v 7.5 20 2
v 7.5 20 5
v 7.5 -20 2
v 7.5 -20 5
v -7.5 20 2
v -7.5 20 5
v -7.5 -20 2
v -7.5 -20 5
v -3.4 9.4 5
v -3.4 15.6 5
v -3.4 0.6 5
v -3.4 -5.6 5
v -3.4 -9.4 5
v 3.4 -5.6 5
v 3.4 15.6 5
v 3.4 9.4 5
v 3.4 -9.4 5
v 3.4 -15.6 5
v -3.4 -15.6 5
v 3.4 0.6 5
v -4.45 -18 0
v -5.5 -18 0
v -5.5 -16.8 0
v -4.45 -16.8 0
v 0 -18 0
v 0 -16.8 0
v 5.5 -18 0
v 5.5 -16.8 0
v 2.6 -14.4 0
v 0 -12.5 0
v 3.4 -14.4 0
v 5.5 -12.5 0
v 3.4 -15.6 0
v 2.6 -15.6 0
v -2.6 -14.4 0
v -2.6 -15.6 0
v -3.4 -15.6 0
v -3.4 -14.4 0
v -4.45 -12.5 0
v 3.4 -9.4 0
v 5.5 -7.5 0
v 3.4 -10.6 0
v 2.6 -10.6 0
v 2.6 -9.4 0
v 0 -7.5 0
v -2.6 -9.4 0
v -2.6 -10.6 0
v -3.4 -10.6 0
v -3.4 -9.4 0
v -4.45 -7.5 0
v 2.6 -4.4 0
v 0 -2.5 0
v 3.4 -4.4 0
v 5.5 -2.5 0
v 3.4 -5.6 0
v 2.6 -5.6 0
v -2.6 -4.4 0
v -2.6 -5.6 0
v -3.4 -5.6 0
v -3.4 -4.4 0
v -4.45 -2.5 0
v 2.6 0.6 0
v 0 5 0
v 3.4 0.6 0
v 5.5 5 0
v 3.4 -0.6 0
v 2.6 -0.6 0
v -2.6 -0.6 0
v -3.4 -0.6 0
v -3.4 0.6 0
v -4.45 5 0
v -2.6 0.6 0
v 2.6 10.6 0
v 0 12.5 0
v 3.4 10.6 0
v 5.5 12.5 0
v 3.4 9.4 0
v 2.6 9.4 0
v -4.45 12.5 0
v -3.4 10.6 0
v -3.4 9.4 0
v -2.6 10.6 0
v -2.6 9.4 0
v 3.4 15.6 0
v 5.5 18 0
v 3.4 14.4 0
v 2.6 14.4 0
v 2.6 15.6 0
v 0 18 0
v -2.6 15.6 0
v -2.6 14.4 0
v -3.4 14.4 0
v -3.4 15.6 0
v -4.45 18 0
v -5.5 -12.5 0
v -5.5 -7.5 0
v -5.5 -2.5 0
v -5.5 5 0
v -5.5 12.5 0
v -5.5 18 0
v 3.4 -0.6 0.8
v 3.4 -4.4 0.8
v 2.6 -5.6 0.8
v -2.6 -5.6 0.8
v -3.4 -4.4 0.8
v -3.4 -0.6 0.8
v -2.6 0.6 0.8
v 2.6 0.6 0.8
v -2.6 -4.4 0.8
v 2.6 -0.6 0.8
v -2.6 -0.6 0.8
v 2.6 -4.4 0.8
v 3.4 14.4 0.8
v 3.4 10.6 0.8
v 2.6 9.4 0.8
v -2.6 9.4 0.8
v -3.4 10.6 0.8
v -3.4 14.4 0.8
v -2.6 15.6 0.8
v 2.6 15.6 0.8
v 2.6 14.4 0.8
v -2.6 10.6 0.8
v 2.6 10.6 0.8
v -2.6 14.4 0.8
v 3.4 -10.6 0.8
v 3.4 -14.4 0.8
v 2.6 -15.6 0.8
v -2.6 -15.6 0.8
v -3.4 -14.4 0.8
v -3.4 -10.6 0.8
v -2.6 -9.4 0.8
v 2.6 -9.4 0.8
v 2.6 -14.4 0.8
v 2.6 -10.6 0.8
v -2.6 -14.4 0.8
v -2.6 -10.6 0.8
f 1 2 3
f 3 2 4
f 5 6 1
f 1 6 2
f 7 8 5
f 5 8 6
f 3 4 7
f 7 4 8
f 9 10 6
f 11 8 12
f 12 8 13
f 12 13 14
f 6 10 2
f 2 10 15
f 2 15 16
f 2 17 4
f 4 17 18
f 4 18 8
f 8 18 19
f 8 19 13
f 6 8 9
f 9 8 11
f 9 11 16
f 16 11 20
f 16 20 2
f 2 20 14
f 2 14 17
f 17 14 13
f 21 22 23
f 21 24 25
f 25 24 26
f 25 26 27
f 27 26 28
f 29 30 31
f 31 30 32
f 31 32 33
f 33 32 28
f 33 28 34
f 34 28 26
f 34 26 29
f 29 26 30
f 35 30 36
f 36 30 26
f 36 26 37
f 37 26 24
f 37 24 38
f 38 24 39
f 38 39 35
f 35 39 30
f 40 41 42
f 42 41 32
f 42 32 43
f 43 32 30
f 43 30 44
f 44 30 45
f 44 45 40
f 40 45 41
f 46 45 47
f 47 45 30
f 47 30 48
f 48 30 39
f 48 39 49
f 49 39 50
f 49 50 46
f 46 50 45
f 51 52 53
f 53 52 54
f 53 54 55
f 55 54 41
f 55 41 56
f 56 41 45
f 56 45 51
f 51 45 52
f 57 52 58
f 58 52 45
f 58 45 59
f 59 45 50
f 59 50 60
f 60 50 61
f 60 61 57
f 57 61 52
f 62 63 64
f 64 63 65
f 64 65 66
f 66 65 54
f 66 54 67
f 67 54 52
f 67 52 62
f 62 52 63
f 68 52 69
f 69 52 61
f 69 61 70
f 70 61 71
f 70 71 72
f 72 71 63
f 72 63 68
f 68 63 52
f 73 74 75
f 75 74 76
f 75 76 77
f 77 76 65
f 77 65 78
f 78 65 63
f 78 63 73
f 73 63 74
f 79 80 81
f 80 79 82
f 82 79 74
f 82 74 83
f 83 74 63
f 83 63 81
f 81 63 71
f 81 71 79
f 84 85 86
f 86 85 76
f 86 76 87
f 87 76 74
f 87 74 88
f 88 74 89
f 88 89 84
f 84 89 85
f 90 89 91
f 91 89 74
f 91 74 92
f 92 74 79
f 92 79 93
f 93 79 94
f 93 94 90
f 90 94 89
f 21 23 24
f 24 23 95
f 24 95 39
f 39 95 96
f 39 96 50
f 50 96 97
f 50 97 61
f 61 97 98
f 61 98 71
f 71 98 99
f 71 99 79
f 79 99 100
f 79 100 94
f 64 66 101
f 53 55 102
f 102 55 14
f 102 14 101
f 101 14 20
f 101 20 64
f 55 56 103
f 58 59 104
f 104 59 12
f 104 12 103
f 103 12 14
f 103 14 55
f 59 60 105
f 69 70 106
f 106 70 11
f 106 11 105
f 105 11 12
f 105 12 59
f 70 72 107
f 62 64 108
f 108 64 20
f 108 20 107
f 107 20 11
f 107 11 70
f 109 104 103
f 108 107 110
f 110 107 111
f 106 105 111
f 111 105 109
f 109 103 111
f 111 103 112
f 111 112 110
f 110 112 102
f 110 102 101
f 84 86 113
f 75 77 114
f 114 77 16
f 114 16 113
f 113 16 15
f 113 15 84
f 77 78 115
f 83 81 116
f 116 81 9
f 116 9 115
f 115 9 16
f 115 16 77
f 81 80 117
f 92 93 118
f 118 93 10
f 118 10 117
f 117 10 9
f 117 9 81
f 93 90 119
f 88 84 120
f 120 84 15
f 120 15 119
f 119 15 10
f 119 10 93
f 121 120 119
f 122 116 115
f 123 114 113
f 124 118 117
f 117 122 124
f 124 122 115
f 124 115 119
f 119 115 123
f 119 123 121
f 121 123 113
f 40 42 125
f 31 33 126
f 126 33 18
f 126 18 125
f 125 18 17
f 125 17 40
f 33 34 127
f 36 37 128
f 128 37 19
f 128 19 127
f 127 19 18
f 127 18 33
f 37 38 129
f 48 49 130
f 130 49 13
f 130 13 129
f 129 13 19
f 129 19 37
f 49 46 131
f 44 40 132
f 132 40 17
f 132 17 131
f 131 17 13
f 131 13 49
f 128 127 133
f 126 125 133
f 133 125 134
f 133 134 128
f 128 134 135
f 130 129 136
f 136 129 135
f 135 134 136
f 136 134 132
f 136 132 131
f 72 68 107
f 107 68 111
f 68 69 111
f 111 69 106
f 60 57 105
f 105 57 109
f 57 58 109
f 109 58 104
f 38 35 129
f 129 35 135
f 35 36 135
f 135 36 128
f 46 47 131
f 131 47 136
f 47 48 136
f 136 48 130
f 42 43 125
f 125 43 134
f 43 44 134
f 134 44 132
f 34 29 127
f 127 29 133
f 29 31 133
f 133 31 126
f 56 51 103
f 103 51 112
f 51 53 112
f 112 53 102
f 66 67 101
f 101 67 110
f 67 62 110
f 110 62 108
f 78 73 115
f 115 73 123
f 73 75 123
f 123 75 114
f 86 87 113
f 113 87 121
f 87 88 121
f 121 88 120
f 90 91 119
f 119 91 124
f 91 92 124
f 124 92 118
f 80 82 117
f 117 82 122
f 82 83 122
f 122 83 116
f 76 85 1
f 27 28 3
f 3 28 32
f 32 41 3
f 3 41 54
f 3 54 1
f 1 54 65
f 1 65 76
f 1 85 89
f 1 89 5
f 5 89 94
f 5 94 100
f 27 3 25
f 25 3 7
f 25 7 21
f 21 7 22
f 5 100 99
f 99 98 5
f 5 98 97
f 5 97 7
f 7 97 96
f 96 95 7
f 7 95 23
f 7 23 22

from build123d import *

# Parameters (mm, degrees)
ESQUISSE1_W             = 15
ESQUISSE1_H             = 40
BOSS_EXTRU_1_DEPTH      = 5
ESQUISSE2_W             = 6.8
ESQUISSE2_H             = 6.2
ENL_V_MAT_EXTRU_1_DEPTH = 4.2
ESQUISSE3_W             = 0.8
ESQUISSE3_H             = 1.2
ENL_V_MAT_EXTRU_2_DEPTH = 22.769014677
CHANFREIN1_SIZE         = 2


with BuildPart() as part:
    # Esquisse1 → Boss.-Extru.1 (new body)
    with BuildSketch(Plane.XY):
        Rectangle(ESQUISSE1_W, ESQUISSE1_H)
    extrude(amount=BOSS_EXTRU_1_DEPTH)

    # Esquisse2 → Enlèv. mat.-Extru.1 (cut)
    with BuildSketch(Plane.XY.offset(5)):
        with Locations((0, -2.5)):
            Rectangle(ESQUISSE2_W, ESQUISSE2_H)
        with Locations((0, 12.5)):
            Rectangle(ESQUISSE2_W, ESQUISSE2_H)
        with Locations((0, -12.5)):
            Rectangle(ESQUISSE2_W, ESQUISSE2_H)
    extrude(amount=-ENL_V_MAT_EXTRU_1_DEPTH, mode=Mode.SUBTRACT)

    # Esquisse3 → Enlèv. mat.-Extru.2 (cut, through all)
    with BuildSketch(Plane.XY.offset(0.8)):
        with Locations((-3, 0)):
            Rectangle(ESQUISSE3_W, ESQUISSE3_H)
        with Locations((-3, 10)):
            Rectangle(ESQUISSE3_W, ESQUISSE3_H)
        with Locations((-3, 15)):
            Rectangle(ESQUISSE3_W, ESQUISSE3_H)
        with Locations((3, 15)):
            Rectangle(ESQUISSE3_W, ESQUISSE3_H)
        with Locations((3, 10)):
            Rectangle(ESQUISSE3_W, ESQUISSE3_H)
        with Locations((3, 0)):
            Rectangle(ESQUISSE3_W, ESQUISSE3_H)
        with Locations((3, -5)):
            Rectangle(ESQUISSE3_W, ESQUISSE3_H)
        with Locations((3, -15)):
            Rectangle(ESQUISSE3_W, ESQUISSE3_H)
        with Locations((3, -10)):
            Rectangle(ESQUISSE3_W, ESQUISSE3_H)
        with Locations((-3, -10)):
            Rectangle(ESQUISSE3_W, ESQUISSE3_H)
        with Locations((-3, -15)):
            Rectangle(ESQUISSE3_W, ESQUISSE3_H)
        with Locations((-3, -5)):
            Rectangle(ESQUISSE3_W, ESQUISSE3_H)
    extrude(amount=-ENL_V_MAT_EXTRU_2_DEPTH, mode=Mode.SUBTRACT)

    # Chanfrein1
    chanfrein1_edges = [part.edges().sort_by_distance(p)[0] for p in [
        (0, -20, 0),
        (-7.5, 0, 0),
        (0, 20, 0),
        (7.5, 0, 0),
    ]]
    chamfer(chanfrein1_edges, length=CHANFREIN1_SIZE)


solid = part.part
